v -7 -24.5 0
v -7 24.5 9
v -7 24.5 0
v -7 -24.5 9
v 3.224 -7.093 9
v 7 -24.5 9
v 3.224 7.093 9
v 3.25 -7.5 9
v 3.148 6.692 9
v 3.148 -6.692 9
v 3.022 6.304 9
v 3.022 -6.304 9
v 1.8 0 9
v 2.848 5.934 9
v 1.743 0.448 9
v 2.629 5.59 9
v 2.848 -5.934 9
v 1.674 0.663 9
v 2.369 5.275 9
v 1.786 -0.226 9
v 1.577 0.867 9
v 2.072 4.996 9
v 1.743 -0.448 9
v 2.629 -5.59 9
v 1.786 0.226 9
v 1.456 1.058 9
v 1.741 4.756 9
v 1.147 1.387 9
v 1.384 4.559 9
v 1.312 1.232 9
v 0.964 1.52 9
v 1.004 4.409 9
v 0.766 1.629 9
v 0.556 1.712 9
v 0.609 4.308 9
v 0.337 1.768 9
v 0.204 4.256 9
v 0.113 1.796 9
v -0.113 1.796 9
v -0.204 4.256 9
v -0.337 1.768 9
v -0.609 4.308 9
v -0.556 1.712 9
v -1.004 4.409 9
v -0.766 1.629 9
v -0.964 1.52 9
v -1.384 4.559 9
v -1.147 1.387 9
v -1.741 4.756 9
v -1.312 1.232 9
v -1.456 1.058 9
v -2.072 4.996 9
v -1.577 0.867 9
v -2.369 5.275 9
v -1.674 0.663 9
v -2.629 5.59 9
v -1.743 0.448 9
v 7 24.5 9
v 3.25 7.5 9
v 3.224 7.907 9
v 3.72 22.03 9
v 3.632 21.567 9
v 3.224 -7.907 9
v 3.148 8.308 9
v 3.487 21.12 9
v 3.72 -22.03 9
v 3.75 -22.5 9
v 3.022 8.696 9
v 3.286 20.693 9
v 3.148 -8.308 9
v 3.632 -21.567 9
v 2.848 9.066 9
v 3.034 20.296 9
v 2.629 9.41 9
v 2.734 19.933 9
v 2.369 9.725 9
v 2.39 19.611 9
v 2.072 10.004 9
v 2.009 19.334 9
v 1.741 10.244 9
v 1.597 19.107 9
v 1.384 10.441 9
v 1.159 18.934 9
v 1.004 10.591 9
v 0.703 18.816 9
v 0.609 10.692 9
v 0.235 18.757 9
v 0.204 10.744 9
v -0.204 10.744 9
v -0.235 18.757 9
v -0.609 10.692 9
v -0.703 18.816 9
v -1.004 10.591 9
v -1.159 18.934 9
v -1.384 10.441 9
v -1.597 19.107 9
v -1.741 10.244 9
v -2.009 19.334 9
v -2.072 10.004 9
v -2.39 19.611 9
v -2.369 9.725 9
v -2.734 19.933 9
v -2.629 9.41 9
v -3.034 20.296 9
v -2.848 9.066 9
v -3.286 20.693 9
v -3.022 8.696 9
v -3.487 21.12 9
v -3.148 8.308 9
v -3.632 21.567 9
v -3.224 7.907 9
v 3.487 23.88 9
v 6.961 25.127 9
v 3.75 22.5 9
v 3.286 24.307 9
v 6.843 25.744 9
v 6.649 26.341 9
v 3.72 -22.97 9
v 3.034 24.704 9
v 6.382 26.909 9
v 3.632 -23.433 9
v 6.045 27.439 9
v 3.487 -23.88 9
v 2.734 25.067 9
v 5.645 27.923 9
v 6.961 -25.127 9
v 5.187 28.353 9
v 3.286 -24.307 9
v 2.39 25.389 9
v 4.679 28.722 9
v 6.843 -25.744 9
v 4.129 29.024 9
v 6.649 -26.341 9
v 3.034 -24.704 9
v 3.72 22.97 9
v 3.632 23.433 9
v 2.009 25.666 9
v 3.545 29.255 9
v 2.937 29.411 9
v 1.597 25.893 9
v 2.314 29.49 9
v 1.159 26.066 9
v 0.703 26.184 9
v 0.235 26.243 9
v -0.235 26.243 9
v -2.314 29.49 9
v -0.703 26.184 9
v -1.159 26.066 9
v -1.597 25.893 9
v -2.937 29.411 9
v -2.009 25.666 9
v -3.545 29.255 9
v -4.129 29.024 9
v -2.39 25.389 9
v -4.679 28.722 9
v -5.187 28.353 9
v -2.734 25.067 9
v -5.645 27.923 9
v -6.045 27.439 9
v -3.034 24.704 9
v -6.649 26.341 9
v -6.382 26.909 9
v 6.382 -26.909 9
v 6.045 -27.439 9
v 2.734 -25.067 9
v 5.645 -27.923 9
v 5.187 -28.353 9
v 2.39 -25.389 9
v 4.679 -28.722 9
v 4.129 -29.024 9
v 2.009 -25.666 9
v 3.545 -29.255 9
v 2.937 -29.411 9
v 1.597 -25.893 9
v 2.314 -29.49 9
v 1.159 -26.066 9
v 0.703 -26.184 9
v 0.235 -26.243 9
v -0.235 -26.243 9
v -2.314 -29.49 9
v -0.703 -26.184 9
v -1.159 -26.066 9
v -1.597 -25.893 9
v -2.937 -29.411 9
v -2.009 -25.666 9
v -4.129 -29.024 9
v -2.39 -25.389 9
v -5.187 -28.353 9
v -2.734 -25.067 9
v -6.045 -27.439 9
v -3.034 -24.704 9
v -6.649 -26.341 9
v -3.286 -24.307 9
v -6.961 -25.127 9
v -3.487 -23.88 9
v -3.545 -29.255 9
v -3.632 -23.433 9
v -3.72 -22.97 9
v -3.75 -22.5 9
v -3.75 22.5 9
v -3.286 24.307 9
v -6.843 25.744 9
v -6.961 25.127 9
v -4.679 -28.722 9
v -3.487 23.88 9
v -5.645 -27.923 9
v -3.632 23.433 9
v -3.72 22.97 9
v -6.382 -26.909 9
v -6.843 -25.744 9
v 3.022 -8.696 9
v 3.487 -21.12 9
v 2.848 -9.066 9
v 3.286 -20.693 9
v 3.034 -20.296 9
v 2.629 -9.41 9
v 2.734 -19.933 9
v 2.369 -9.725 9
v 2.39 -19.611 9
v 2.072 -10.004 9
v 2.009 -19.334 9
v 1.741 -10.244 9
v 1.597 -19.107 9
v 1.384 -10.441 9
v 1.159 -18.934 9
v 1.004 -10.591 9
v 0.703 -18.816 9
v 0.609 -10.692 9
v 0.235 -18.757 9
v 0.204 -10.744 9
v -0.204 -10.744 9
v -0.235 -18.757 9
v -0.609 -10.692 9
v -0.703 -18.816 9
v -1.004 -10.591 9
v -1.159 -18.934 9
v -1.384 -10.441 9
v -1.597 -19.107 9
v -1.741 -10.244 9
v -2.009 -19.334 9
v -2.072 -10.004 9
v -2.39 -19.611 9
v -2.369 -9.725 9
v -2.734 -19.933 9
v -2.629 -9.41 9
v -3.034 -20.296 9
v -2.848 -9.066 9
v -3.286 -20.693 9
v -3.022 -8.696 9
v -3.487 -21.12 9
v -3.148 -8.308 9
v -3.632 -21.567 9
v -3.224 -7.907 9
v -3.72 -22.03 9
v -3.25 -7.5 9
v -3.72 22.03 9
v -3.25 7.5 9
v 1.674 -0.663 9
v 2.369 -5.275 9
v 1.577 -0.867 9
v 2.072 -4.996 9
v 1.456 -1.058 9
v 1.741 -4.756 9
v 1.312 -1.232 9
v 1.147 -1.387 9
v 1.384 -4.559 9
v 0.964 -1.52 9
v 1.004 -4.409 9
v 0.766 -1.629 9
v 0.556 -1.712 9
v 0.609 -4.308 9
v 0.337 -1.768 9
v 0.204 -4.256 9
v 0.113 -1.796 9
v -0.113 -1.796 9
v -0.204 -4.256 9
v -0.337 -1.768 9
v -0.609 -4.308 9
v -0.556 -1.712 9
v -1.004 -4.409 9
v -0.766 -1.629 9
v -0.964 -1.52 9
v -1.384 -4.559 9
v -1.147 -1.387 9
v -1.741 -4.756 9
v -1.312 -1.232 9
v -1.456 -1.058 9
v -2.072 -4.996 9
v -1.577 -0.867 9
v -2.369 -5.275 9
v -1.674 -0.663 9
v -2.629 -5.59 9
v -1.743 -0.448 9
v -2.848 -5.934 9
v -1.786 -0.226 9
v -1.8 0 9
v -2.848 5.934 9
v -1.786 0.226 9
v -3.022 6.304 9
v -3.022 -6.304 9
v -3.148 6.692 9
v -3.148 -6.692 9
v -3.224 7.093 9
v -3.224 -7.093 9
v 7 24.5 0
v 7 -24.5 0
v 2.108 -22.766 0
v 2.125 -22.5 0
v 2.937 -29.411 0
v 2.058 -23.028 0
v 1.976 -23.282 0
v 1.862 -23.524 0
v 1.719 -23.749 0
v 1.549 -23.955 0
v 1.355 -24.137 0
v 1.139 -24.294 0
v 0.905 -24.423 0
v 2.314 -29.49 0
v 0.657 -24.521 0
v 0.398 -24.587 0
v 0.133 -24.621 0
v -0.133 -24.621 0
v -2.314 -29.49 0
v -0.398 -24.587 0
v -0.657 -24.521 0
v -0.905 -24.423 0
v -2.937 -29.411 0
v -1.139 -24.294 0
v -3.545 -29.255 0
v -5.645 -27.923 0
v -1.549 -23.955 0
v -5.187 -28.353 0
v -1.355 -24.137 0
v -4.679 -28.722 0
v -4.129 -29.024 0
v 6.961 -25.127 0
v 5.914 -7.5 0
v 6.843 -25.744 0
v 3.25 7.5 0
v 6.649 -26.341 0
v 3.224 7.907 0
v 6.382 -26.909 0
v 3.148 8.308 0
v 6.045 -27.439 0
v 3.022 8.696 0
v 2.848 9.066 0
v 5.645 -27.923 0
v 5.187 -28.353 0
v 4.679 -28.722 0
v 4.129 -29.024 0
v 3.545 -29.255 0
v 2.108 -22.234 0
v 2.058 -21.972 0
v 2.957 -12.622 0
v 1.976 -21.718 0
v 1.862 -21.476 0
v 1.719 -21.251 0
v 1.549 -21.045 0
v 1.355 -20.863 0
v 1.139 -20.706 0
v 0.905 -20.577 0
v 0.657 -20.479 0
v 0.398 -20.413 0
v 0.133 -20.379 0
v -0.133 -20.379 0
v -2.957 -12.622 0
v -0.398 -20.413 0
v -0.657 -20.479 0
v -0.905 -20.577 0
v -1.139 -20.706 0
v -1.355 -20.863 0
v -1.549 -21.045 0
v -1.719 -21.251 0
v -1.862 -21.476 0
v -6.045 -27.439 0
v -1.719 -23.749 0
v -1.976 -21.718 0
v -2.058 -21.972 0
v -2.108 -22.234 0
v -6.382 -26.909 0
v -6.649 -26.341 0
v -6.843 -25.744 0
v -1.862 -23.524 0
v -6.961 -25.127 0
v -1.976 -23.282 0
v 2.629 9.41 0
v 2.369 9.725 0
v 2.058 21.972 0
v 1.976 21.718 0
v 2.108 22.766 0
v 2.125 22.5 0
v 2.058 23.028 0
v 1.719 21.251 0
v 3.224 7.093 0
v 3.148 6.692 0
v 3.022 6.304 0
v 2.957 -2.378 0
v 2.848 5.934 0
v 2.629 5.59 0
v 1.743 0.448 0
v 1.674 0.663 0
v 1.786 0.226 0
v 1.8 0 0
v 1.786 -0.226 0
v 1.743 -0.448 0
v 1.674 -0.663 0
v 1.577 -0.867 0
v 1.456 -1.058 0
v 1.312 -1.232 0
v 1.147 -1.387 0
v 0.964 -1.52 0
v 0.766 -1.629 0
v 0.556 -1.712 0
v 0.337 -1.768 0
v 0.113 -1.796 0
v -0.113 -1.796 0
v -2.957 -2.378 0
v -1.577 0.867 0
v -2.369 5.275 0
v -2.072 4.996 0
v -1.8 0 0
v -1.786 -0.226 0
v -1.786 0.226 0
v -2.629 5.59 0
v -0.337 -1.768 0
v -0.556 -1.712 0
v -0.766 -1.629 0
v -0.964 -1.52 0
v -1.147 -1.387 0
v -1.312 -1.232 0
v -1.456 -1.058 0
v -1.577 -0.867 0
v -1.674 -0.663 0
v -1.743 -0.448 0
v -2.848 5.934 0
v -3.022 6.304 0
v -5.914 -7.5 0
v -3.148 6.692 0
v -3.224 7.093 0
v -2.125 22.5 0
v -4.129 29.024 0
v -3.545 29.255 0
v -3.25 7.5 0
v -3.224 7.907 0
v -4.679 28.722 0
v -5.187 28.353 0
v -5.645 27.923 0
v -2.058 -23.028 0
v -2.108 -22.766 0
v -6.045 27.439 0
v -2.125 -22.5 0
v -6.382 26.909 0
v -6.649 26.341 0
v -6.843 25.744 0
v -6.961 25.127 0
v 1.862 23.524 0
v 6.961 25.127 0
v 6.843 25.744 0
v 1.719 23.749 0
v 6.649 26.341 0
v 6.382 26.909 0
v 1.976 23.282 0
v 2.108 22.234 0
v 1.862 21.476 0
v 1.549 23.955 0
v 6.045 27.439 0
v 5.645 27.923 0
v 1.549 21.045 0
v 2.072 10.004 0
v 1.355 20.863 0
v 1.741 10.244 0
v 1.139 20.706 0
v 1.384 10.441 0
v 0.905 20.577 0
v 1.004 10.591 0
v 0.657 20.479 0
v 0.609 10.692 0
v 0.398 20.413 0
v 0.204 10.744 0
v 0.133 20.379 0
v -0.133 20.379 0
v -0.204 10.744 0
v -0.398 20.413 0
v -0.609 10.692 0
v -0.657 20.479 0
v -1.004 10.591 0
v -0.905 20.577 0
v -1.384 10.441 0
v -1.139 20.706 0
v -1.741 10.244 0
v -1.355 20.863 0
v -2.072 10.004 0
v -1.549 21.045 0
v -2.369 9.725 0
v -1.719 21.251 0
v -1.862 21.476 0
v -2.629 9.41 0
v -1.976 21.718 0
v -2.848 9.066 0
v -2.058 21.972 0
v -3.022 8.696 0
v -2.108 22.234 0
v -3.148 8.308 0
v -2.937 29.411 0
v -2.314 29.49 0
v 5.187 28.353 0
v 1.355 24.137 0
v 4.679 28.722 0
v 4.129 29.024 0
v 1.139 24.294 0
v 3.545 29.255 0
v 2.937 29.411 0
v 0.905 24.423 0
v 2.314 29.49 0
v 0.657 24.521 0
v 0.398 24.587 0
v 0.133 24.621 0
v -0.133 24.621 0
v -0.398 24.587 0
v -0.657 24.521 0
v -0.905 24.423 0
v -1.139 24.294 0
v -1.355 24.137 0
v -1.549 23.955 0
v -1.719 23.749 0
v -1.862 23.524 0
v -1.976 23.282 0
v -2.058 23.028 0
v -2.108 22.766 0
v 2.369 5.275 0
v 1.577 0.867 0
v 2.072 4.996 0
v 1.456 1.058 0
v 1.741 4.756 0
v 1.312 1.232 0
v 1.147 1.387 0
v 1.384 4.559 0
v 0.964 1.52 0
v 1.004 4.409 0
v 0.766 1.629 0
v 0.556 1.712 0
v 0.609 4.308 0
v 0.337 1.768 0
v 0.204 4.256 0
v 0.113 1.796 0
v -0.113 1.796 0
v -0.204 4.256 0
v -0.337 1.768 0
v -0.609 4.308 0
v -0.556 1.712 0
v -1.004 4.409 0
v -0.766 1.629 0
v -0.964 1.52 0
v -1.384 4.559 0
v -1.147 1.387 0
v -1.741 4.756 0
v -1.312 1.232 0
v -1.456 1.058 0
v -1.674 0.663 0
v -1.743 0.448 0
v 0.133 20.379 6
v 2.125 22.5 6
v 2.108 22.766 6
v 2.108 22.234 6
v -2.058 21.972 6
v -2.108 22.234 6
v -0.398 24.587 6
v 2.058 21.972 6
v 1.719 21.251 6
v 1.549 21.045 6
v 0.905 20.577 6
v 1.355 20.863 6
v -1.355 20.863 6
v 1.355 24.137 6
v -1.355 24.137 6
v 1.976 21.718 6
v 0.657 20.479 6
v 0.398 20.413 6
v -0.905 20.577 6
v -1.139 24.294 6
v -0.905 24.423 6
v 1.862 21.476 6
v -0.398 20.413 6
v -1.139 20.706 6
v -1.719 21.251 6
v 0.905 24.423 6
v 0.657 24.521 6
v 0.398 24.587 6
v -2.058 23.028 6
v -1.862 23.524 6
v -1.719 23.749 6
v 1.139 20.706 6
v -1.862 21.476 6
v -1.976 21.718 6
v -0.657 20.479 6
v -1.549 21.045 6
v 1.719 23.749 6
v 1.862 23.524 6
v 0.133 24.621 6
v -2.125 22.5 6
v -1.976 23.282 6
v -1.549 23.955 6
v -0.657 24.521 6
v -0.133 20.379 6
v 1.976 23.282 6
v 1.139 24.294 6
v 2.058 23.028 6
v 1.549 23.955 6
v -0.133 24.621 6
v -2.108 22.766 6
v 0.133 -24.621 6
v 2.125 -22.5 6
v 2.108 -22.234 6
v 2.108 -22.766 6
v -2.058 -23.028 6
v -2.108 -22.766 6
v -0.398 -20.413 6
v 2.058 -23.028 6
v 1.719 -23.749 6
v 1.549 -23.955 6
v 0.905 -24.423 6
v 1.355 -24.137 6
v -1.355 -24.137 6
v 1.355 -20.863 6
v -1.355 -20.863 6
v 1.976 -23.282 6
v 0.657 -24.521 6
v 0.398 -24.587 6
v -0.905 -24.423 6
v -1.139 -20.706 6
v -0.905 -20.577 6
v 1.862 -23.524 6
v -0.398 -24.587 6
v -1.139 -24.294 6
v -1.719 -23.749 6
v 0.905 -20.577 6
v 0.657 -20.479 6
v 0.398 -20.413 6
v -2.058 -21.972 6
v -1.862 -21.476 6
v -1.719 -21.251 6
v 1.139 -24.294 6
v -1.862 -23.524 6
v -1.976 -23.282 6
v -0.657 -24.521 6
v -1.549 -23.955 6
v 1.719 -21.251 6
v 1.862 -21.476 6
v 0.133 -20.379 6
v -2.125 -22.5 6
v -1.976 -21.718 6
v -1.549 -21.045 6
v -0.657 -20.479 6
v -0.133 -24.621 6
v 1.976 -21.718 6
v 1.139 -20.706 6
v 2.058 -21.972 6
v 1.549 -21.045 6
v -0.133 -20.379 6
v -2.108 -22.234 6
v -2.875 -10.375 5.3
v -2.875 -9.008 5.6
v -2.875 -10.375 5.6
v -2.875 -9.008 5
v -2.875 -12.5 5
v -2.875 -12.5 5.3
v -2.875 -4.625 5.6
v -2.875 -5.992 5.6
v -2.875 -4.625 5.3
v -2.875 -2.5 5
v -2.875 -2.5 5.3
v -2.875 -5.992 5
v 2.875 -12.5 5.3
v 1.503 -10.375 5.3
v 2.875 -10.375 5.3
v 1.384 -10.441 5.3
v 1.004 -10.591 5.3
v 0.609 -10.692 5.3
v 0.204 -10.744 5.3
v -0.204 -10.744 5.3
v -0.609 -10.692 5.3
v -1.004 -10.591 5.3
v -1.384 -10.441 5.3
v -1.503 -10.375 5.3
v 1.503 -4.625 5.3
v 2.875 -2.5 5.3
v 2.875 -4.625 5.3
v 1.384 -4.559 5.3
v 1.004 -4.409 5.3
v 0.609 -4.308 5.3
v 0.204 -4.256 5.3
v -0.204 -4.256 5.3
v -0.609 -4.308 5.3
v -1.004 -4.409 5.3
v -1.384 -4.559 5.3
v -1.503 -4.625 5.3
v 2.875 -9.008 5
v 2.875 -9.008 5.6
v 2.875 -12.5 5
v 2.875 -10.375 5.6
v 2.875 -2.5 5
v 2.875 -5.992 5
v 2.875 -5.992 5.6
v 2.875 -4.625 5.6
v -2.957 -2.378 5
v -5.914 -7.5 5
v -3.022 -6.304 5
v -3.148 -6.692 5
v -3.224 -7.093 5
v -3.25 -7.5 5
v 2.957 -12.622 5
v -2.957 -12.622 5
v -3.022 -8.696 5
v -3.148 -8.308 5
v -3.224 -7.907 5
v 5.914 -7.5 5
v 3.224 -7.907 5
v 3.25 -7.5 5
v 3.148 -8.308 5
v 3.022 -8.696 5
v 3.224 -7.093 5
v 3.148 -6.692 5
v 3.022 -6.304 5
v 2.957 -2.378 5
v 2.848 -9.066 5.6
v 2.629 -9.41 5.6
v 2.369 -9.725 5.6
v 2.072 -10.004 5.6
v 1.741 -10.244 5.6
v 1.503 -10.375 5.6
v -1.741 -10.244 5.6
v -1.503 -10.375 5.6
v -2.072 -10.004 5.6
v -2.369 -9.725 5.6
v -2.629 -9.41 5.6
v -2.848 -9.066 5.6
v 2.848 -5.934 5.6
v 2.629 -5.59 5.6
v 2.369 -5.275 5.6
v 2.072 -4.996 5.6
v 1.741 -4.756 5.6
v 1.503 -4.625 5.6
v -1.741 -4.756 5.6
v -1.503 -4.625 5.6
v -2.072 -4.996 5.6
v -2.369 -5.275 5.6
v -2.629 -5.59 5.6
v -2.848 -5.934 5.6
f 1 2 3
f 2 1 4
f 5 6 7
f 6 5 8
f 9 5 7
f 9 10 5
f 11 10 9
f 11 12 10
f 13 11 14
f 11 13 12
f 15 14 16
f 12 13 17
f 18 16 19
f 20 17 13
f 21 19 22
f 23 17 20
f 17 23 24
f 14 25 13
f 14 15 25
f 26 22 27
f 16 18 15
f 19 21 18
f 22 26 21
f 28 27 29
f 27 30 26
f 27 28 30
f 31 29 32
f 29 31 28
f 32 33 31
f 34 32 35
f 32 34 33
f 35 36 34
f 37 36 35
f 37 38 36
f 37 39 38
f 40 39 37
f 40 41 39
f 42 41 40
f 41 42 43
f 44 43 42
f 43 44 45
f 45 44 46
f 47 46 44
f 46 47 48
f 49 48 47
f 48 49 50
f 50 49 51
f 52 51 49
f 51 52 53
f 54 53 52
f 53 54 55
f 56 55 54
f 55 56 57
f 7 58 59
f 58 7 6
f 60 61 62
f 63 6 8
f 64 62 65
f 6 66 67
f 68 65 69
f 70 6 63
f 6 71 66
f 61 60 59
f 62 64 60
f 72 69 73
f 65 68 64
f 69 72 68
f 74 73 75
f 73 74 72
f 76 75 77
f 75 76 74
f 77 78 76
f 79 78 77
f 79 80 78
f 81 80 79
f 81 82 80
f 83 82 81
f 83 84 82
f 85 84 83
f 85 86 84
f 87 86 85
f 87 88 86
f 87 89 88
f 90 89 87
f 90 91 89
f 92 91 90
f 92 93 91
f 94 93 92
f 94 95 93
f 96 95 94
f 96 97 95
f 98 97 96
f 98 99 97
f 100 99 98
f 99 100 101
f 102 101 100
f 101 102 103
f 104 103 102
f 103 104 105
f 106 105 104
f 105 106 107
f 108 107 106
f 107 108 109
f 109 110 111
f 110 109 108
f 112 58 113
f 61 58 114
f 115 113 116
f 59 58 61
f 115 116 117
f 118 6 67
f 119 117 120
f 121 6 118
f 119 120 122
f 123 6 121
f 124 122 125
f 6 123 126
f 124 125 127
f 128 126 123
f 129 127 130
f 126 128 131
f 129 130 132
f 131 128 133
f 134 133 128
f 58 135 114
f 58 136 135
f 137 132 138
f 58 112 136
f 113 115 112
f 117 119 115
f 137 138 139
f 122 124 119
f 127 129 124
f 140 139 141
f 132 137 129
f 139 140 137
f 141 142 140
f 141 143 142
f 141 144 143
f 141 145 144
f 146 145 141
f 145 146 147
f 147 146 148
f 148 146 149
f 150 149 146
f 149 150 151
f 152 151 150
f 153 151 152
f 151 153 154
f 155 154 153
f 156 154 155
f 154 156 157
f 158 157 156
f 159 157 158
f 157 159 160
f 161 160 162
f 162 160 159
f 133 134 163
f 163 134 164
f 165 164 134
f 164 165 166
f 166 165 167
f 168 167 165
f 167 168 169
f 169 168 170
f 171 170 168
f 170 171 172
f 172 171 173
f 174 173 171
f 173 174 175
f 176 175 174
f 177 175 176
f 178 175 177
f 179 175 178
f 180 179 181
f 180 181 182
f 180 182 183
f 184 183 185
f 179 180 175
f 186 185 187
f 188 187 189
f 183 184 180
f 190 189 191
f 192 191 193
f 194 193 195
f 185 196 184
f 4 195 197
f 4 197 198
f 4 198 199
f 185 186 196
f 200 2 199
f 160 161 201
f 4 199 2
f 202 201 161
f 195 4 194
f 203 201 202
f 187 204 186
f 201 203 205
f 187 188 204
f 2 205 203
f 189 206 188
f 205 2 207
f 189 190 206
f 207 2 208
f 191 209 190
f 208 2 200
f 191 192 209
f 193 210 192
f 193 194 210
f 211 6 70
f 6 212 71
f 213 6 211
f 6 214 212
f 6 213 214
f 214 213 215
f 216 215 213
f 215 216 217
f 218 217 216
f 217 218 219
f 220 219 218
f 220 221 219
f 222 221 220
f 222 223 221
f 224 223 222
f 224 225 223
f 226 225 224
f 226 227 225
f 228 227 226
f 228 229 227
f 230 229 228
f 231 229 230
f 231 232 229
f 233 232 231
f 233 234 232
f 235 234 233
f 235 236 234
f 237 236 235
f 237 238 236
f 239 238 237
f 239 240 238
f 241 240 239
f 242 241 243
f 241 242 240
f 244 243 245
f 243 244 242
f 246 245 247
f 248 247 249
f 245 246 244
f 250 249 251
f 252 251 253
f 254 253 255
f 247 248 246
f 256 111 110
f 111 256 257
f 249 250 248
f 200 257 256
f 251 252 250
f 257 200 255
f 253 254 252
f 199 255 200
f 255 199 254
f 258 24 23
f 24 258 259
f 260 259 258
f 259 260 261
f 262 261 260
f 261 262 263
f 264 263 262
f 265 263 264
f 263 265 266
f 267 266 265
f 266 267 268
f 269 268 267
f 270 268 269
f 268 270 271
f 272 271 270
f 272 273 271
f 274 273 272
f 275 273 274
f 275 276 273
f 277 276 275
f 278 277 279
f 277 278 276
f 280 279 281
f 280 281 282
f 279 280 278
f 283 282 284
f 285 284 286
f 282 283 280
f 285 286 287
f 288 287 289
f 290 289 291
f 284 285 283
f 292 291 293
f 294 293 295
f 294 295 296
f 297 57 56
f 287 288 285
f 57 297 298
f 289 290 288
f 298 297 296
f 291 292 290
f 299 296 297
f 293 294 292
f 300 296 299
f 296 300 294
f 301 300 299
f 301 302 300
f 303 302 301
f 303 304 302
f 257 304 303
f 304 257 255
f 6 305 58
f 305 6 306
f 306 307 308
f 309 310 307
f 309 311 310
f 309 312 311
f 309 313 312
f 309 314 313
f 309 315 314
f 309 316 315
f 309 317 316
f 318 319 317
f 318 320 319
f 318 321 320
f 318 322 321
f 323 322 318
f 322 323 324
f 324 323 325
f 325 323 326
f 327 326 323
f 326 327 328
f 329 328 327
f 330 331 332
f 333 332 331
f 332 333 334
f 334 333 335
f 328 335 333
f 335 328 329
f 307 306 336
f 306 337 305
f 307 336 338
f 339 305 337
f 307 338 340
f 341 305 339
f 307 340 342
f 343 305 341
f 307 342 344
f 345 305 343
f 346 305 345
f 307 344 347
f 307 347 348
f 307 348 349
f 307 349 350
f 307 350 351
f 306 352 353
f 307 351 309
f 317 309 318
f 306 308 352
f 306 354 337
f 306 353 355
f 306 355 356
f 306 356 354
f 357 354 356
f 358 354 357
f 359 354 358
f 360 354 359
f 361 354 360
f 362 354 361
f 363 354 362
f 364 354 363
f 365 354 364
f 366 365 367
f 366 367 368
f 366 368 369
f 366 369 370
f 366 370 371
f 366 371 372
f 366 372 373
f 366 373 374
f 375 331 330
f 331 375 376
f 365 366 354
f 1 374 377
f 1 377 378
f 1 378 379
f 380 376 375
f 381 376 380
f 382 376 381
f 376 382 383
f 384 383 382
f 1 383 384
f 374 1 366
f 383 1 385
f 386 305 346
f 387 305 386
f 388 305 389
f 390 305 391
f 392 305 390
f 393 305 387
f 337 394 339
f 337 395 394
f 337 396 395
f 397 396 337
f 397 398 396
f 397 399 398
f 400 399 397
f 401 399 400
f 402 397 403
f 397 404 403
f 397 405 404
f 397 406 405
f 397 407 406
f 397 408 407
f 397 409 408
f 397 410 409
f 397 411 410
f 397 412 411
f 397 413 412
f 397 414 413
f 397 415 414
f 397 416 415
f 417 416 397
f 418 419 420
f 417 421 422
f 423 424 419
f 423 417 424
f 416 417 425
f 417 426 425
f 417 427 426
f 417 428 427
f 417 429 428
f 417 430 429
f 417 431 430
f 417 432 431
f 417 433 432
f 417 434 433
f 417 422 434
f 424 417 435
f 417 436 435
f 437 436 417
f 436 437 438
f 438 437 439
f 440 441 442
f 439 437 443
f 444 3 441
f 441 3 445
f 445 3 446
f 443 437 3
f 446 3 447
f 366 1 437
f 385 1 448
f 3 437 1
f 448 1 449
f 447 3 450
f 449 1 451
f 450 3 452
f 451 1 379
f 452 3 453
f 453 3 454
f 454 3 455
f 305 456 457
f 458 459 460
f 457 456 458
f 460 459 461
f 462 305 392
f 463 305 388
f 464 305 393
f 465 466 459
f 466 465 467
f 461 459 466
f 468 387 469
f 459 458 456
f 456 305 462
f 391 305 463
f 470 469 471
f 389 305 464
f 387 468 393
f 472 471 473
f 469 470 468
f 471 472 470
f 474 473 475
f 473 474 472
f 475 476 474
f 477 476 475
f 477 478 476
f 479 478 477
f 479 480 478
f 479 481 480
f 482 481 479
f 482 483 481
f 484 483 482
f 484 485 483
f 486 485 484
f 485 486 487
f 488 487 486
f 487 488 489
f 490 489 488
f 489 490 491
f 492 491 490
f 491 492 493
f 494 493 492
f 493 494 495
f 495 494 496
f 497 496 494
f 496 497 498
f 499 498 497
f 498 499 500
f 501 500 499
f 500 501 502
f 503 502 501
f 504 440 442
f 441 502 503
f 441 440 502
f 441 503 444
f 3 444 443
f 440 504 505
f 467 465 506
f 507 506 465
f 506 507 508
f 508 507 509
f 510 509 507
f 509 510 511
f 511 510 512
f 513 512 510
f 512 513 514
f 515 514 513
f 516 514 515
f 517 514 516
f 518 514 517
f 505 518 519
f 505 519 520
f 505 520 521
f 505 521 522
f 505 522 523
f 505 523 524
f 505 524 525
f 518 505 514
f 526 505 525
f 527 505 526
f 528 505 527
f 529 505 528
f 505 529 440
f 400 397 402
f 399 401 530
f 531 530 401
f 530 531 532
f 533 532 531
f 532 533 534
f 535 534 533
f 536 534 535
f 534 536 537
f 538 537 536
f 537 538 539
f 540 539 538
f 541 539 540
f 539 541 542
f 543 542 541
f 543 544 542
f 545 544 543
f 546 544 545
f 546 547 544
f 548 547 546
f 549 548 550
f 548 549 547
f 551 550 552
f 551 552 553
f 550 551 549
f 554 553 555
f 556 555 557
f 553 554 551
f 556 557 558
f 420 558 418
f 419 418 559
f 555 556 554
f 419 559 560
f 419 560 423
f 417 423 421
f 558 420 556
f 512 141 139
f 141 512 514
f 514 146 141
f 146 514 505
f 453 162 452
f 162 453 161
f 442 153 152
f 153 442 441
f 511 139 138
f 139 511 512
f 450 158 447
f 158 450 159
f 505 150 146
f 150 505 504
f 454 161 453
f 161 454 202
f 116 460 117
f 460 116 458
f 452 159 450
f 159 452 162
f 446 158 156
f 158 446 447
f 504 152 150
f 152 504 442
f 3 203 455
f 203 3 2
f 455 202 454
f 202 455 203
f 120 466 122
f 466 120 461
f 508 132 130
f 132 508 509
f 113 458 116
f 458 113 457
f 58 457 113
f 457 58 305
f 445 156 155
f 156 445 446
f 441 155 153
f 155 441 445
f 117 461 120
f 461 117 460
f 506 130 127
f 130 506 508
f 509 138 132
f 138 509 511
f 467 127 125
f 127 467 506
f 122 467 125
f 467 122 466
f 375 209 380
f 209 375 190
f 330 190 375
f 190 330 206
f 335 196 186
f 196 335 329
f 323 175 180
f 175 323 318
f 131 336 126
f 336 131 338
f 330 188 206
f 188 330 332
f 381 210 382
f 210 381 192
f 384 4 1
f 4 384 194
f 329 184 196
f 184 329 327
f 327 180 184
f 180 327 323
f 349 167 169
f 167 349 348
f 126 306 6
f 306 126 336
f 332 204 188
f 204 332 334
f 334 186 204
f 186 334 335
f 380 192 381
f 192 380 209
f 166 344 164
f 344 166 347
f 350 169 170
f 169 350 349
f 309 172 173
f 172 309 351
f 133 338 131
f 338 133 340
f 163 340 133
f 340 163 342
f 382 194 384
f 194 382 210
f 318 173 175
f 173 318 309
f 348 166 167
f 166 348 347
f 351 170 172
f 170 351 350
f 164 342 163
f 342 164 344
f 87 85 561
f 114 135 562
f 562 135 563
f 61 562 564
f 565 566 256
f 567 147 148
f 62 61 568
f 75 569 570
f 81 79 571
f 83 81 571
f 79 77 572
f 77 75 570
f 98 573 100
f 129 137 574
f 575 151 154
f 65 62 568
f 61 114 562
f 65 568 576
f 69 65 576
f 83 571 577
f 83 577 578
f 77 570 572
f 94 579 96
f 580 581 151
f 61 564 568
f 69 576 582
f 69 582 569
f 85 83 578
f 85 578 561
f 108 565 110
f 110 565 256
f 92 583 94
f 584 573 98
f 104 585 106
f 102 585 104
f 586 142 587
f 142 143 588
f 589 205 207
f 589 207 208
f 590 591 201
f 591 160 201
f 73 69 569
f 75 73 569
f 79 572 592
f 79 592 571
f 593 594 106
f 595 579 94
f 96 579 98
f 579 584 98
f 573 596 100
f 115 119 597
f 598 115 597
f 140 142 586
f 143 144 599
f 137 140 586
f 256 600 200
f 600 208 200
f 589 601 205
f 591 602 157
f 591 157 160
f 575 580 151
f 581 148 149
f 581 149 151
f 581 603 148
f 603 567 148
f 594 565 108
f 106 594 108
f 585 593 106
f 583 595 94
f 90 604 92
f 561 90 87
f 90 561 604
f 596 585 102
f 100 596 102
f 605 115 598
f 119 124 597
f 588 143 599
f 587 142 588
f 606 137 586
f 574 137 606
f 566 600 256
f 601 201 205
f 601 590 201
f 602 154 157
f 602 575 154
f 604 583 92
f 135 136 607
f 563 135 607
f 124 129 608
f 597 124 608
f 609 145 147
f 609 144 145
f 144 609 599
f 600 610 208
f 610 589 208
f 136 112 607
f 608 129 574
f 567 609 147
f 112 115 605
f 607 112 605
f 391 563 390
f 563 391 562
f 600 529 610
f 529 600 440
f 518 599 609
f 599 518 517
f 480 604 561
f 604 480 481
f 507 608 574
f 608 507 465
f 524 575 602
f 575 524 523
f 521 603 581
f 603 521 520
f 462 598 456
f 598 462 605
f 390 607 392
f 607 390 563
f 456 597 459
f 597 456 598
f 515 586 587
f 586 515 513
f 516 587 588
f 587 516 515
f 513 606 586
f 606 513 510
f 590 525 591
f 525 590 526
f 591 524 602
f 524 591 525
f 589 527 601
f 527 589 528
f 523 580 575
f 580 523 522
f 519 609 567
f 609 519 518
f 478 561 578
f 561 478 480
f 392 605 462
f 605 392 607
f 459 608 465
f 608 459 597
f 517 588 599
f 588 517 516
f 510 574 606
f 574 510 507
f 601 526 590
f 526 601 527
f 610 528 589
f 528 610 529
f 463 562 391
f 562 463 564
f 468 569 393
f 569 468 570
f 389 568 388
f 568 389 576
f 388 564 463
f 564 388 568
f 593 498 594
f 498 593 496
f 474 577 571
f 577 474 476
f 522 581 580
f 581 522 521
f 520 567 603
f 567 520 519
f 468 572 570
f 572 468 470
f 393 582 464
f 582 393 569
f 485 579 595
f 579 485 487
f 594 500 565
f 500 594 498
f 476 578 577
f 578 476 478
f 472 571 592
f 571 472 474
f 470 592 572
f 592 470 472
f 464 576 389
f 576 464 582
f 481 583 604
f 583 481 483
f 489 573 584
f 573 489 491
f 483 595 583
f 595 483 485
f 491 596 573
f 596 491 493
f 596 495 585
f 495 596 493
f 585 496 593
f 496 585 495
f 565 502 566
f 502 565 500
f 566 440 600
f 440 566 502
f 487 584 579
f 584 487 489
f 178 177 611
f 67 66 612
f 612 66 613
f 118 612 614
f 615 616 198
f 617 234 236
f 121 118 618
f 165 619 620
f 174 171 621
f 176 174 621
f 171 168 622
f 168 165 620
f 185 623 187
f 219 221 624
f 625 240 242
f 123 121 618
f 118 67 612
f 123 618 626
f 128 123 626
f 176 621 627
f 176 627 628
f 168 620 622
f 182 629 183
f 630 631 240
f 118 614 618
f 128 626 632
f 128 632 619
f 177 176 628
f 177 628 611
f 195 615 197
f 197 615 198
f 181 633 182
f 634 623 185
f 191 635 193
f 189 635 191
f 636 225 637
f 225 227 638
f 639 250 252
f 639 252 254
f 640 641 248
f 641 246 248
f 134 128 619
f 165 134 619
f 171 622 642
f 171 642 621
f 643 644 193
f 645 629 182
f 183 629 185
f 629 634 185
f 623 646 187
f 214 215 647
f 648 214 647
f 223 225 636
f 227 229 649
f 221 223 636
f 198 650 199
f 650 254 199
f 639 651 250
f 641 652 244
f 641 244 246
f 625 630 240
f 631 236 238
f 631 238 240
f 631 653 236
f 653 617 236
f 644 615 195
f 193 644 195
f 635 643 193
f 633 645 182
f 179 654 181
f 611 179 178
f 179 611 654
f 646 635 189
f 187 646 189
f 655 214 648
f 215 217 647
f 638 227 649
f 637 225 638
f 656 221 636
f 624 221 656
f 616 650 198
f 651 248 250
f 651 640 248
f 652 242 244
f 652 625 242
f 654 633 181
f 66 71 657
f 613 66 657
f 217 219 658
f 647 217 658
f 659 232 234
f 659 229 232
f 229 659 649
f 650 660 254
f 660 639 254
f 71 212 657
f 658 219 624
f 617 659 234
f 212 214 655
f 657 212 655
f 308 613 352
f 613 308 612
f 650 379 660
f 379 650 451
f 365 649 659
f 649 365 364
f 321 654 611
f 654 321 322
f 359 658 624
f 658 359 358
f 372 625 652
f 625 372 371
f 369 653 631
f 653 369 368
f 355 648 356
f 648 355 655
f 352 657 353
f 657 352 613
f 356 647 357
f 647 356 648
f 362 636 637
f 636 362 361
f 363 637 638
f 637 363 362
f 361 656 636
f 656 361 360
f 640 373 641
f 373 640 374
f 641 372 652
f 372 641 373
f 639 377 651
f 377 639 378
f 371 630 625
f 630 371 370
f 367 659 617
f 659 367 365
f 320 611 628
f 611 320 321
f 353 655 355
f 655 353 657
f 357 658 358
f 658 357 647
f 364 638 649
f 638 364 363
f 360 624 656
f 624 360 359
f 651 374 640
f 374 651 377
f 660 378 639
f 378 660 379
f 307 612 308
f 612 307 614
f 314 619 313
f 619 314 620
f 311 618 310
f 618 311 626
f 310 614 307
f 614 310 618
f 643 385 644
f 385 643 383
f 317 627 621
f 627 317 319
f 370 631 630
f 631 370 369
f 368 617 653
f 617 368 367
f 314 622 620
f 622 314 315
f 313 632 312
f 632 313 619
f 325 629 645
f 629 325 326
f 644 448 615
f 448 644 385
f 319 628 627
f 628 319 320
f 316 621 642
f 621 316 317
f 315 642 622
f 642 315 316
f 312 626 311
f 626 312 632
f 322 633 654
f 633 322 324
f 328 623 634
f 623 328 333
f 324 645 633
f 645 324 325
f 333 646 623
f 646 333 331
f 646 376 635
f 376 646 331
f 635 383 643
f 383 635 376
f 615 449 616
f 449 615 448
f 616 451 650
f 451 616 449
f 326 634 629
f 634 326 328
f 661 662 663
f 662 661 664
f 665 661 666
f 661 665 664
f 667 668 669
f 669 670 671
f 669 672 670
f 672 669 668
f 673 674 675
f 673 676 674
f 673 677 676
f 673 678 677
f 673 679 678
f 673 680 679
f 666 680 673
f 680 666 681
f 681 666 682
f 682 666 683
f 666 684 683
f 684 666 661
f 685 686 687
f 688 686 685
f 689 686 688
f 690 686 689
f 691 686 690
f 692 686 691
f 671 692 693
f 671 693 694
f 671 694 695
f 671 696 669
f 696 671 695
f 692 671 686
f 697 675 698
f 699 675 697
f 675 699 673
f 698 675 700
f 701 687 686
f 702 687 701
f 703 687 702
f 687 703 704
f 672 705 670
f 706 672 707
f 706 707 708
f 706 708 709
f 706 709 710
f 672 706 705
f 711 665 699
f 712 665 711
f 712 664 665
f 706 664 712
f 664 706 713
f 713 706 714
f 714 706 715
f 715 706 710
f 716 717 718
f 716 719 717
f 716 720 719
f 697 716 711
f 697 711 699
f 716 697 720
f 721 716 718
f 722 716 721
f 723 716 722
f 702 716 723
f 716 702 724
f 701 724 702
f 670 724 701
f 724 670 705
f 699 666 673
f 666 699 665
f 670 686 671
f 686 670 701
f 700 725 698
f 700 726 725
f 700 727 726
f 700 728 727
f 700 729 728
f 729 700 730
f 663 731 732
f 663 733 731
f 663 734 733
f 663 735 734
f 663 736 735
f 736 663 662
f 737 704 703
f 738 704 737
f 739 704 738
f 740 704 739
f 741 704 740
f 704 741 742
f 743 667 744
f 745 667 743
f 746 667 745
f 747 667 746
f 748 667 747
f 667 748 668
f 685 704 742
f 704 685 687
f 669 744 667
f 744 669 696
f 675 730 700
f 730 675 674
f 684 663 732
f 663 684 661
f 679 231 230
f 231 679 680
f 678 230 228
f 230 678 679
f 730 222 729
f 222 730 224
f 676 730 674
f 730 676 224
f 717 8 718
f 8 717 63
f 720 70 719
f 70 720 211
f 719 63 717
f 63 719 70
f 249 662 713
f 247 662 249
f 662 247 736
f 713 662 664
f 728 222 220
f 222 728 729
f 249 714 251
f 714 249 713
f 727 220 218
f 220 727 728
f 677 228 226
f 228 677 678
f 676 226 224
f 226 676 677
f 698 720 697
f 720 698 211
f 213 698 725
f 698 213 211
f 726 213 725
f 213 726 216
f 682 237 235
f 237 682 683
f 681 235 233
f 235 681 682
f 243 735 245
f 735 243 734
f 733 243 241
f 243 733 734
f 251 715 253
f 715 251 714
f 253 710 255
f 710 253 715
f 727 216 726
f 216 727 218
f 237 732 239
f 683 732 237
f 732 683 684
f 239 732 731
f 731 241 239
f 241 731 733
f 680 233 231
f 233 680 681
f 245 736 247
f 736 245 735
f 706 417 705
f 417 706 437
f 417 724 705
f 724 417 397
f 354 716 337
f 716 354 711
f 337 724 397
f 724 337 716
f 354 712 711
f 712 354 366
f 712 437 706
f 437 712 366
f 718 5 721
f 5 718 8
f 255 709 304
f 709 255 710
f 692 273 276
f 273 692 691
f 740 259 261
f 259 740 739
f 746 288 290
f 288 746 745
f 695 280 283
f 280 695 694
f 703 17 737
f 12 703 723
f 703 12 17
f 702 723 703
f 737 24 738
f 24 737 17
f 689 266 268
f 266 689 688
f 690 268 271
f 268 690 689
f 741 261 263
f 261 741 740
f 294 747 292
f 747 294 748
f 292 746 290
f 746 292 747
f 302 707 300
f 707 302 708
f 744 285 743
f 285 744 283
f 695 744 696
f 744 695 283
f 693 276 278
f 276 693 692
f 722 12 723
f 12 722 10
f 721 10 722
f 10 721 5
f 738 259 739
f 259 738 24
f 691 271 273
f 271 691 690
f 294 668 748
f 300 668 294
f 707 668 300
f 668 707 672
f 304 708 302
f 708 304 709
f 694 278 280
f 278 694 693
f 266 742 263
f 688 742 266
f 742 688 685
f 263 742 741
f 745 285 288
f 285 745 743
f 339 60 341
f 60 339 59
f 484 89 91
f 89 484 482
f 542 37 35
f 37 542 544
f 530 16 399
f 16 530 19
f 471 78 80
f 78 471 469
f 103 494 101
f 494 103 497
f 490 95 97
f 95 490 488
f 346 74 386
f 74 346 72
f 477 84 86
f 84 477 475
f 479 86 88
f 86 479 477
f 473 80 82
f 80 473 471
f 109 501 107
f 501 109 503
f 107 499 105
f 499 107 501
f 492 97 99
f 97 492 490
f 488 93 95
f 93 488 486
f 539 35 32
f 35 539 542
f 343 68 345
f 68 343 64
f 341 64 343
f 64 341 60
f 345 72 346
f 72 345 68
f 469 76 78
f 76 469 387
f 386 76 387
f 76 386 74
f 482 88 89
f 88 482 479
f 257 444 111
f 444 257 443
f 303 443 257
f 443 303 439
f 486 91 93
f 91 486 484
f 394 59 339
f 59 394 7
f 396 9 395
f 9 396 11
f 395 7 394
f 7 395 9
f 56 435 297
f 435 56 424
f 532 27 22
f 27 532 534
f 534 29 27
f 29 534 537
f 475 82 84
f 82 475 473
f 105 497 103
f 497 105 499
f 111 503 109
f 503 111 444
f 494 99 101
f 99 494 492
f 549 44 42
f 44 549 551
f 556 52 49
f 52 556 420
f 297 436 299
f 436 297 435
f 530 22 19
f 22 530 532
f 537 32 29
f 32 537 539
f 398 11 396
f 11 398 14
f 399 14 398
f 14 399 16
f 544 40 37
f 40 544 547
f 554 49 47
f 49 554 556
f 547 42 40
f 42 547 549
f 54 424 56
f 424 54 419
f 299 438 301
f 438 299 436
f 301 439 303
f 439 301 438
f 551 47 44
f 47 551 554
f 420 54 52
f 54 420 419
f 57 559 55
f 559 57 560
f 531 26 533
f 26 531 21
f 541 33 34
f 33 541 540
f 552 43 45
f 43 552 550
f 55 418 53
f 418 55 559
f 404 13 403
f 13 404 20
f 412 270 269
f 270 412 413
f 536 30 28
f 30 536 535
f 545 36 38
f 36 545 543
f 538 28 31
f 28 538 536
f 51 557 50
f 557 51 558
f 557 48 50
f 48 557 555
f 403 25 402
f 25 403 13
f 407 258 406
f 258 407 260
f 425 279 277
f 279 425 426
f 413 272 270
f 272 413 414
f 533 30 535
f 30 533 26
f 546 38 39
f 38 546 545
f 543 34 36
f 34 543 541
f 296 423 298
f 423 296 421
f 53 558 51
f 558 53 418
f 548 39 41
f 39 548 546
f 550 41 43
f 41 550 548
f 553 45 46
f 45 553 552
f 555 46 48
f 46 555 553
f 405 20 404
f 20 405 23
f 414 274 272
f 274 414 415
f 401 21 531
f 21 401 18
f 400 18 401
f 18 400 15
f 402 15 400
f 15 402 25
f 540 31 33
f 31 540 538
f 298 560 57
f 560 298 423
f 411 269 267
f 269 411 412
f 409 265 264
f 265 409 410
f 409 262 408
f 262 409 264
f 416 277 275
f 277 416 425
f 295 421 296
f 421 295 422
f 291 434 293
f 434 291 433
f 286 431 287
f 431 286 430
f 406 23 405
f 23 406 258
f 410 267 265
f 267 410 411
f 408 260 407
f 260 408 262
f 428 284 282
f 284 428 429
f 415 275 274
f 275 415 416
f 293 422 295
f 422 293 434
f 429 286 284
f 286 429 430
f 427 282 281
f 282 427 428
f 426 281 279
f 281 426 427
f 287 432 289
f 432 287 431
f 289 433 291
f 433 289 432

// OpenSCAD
$fn = 50;


difference() {
	union() {
		hull() {
			translate(v = [-2.0000000000, 9.5000000000, 0]) {
				cylinder(h = 9, r = 5);
			}
			translate(v = [2.0000000000, 9.5000000000, 0]) {
				cylinder(h = 9, r = 5);
			}
			translate(v = [-2.0000000000, -9.5000000000, 0]) {
				cylinder(h = 9, r = 5);
			}
			translate(v = [2.0000000000, -9.5000000000, 0]) {
				cylinder(h = 9, r = 5);
			}
		}
		translate(v = [0.0000000000, 15.0000000000, 0]) {
			hull() {
				translate(v = [-2.0000000000, 9.5000000000, 0]) {
					cylinder(h = 9, r = 5);
				}
				translate(v = [2.0000000000, 9.5000000000, 0]) {
					cylinder(h = 9, r = 5);
				}
				translate(v = [-2.0000000000, -9.5000000000, 0]) {
					cylinder(h = 9, r = 5);
				}
				translate(v = [2.0000000000, -9.5000000000, 0]) {
					cylinder(h = 9, r = 5);
				}
			}
		}
		translate(v = [0.0000000000, 15.0000000000, 0]) {
			hull() {
				translate(v = [-2.0000000000, 9.5000000000, 0]) {
					cylinder(h = 9, r = 5);
				}
				translate(v = [2.0000000000, 9.5000000000, 0]) {
					cylinder(h = 9, r = 5);
				}
				translate(v = [-2.0000000000, -9.5000000000, 0]) {
					cylinder(h = 9, r = 5);
				}
				translate(v = [2.0000000000, -9.5000000000, 0]) {
					cylinder(h = 9, r = 5);
				}
			}
		}
		translate(v = [0.0000000000, -15.0000000000, 0]) {
			hull() {
				translate(v = [-2.0000000000, 9.5000000000, 0]) {
					cylinder(h = 9, r = 5);
				}
				translate(v = [2.0000000000, 9.5000000000, 0]) {
					cylinder(h = 9, r = 5);
				}
				translate(v = [-2.0000000000, -9.5000000000, 0]) {
					cylinder(h = 9, r = 5);
				}
				translate(v = [2.0000000000, -9.5000000000, 0]) {
					cylinder(h = 9, r = 5);
				}
			}
		}
		translate(v = [0.0000000000, -15.0000000000, 0]) {
			hull() {
				translate(v = [-2.0000000000, 9.5000000000, 0]) {
					cylinder(h = 9, r = 5);
				}
				translate(v = [2.0000000000, 9.5000000000, 0]) {
					cylinder(h = 9, r = 5);
				}
				translate(v = [-2.0000000000, -9.5000000000, 0]) {
					cylinder(h = 9, r = 5);
				}
				translate(v = [2.0000000000, -9.5000000000, 0]) {
					cylinder(h = 9, r = 5);
				}
			}
		}
	}
	union() {
		translate(v = [0.0000000000, 22.5000000000, 9]) {
			rotate(a = [0, 0, 0]) {
				difference() {
					union() {
						#translate(v = [0, 0, -9.0000000000]) {
							cylinder(h = 9, r = 2.0000000000);
						}
						#translate(v = [0, 0, -3]) {
							cylinder(h = 3, r1 = 2.1250000000, r2 = 3.7500000000);
						}
						#translate(v = [0, 0, -9.0000000000]) {
							cylinder(h = 9, r = 2.1250000000);
						}
						#translate(v = [0, 0, -9.0000000000]) {
							cylinder(h = 9, r = 2.0000000000);
						}
					}
					union();
				}
			}
		}
		translate(v = [0.0000000000, 22.5000000000, 9]) {
			rotate(a = [0, 0, 0]) {
				difference() {
					union() {
						#translate(v = [0, 0, -9.0000000000]) {
							cylinder(h = 9, r = 2.0000000000);
						}
						#translate(v = [0, 0, -3]) {
							cylinder(h = 3, r1 = 2.1250000000, r2 = 3.7500000000);
						}
						#translate(v = [0, 0, -9.0000000000]) {
							cylinder(h = 9, r = 2.1250000000);
						}
						#translate(v = [0, 0, -9.0000000000]) {
							cylinder(h = 9, r = 2.0000000000);
						}
					}
					union();
				}
			}
		}
		translate(v = [0.0000000000, -22.5000000000, 9]) {
			rotate(a = [0, 0, 0]) {
				difference() {
					union() {
						#translate(v = [0, 0, -9.0000000000]) {
							cylinder(h = 9, r = 2.0000000000);
						}
						#translate(v = [0, 0, -3]) {
							cylinder(h = 3, r1 = 2.1250000000, r2 = 3.7500000000);
						}
						#translate(v = [0, 0, -9.0000000000]) {
							cylinder(h = 9, r = 2.1250000000);
						}
						#translate(v = [0, 0, -9.0000000000]) {
							cylinder(h = 9, r = 2.0000000000);
						}
					}
					union();
				}
			}
		}
		translate(v = [0.0000000000, -22.5000000000, 9]) {
			rotate(a = [0, 0, 0]) {
				difference() {
					union() {
						#translate(v = [0, 0, -9.0000000000]) {
							cylinder(h = 9, r = 2.0000000000);
						}
						#translate(v = [0, 0, -3]) {
							cylinder(h = 3, r1 = 2.1250000000, r2 = 3.7500000000);
						}
						#translate(v = [0, 0, -9.0000000000]) {
							cylinder(h = 9, r = 2.1250000000);
						}
						#translate(v = [0, 0, -9.0000000000]) {
							cylinder(h = 9, r = 2.0000000000);
						}
					}
					union();
				}
			}
		}
		translate(v = [0.0000000000, -7.5000000000, 0]) {
			rotate(a = [0, 0, 0]) {
				difference() {
					union() {
						#translate(v = [-2.8750000000, -5.0000000000, -0.3000000000]) {
							cube(size = [5.7500000000, 10, 0.3000000000]);
						}
						#translate(v = [-2.8750000000, -2.8750000000, -0.6000000000]) {
							cube(size = [5.7500000000, 5.7500000000, 0.3000000000]);
						}
						#translate(v = [-2.8750000000, -5.0000000000, 5]) {
							cube(size = [5.7500000000, 10, 0.3000000000]);
						}
						#translate(v = [-2.8750000000, -2.8750000000, 5.3000000000]) {
							cube(size = [5.7500000000, 5.7500000000, 0.3000000000]);
						}
						#translate(v = [0, 0, -100.0000000000]) {
							cylinder(h = 200, r = 3.2500000000);
						}
						#linear_extrude(height = 5) {
							polygon(points = [[5.9142500000, 0.0000000000], [2.9571250000, 5.1218907443], [-2.9571250000, 5.1218907443], [-5.9142500000, 0.0000000000], [-2.9571250000, -5.1218907443], [2.9571250000, -5.1218907443]]);
						}
						#translate(v = [-2.8750000000, -5.0000000000, -0.3000000000]) {
							cube(size = [5.7500000000, 10, 0.3000000000]);
						}
						#translate(v = [-2.8750000000, -2.8750000000, -0.6000000000]) {
							cube(size = [5.7500000000, 5.7500000000, 0.3000000000]);
						}
						#translate(v = [-2.8750000000, -5.0000000000, 5]) {
							cube(size = [5.7500000000, 10, 0.3000000000]);
						}
						#translate(v = [-2.8750000000, -2.8750000000, 5.3000000000]) {
							cube(size = [5.7500000000, 5.7500000000, 0.3000000000]);
						}
						#translate(v = [0, 0, -100.0000000000]) {
							cylinder(h = 200, r = 3.2500000000);
						}
						#translate(v = [-2.8750000000, -5.0000000000, -0.3000000000]) {
							cube(size = [5.7500000000, 10, 0.3000000000]);
						}
						#translate(v = [-2.8750000000, -2.8750000000, -0.6000000000]) {
							cube(size = [5.7500000000, 5.7500000000, 0.3000000000]);
						}
						#translate(v = [-2.8750000000, -5.0000000000, 5]) {
							cube(size = [5.7500000000, 10, 0.3000000000]);
						}
						#translate(v = [-2.8750000000, -2.8750000000, 5.3000000000]) {
							cube(size = [5.7500000000, 5.7500000000, 0.3000000000]);
						}
						#translate(v = [0, 0, -100.0000000000]) {
							cylinder(h = 200, r = 3.2500000000);
						}
					}
					union();
				}
			}
		}
		translate(v = [0.0000000000, -7.5000000000, 0]) {
			translate(v = [0, 0, -100]) {
				cylinder(h = 200, r = 3.2500000000);
			}
		}
		translate(v = [0.0000000000, 7.5000000000, 0]) {
			translate(v = [0, 0, -100]) {
				cylinder(h = 200, r = 3.2500000000);
			}
		}
		translate(v = [0.0000000000, -7.5000000000, 0]) {
			translate(v = [0, 0, -100]) {
				cylinder(h = 200, r = 1.8000000000);
			}
		}
		translate(v = [0, 0, -100]) {
			cylinder(h = 200, r = 1.8000000000);
		}
		translate(v = [0.0000000000, 7.5000000000, 0]) {
			translate(v = [0, 0, -100]) {
				cylinder(h = 200, r = 1.8000000000);
			}
		}
	}
}
